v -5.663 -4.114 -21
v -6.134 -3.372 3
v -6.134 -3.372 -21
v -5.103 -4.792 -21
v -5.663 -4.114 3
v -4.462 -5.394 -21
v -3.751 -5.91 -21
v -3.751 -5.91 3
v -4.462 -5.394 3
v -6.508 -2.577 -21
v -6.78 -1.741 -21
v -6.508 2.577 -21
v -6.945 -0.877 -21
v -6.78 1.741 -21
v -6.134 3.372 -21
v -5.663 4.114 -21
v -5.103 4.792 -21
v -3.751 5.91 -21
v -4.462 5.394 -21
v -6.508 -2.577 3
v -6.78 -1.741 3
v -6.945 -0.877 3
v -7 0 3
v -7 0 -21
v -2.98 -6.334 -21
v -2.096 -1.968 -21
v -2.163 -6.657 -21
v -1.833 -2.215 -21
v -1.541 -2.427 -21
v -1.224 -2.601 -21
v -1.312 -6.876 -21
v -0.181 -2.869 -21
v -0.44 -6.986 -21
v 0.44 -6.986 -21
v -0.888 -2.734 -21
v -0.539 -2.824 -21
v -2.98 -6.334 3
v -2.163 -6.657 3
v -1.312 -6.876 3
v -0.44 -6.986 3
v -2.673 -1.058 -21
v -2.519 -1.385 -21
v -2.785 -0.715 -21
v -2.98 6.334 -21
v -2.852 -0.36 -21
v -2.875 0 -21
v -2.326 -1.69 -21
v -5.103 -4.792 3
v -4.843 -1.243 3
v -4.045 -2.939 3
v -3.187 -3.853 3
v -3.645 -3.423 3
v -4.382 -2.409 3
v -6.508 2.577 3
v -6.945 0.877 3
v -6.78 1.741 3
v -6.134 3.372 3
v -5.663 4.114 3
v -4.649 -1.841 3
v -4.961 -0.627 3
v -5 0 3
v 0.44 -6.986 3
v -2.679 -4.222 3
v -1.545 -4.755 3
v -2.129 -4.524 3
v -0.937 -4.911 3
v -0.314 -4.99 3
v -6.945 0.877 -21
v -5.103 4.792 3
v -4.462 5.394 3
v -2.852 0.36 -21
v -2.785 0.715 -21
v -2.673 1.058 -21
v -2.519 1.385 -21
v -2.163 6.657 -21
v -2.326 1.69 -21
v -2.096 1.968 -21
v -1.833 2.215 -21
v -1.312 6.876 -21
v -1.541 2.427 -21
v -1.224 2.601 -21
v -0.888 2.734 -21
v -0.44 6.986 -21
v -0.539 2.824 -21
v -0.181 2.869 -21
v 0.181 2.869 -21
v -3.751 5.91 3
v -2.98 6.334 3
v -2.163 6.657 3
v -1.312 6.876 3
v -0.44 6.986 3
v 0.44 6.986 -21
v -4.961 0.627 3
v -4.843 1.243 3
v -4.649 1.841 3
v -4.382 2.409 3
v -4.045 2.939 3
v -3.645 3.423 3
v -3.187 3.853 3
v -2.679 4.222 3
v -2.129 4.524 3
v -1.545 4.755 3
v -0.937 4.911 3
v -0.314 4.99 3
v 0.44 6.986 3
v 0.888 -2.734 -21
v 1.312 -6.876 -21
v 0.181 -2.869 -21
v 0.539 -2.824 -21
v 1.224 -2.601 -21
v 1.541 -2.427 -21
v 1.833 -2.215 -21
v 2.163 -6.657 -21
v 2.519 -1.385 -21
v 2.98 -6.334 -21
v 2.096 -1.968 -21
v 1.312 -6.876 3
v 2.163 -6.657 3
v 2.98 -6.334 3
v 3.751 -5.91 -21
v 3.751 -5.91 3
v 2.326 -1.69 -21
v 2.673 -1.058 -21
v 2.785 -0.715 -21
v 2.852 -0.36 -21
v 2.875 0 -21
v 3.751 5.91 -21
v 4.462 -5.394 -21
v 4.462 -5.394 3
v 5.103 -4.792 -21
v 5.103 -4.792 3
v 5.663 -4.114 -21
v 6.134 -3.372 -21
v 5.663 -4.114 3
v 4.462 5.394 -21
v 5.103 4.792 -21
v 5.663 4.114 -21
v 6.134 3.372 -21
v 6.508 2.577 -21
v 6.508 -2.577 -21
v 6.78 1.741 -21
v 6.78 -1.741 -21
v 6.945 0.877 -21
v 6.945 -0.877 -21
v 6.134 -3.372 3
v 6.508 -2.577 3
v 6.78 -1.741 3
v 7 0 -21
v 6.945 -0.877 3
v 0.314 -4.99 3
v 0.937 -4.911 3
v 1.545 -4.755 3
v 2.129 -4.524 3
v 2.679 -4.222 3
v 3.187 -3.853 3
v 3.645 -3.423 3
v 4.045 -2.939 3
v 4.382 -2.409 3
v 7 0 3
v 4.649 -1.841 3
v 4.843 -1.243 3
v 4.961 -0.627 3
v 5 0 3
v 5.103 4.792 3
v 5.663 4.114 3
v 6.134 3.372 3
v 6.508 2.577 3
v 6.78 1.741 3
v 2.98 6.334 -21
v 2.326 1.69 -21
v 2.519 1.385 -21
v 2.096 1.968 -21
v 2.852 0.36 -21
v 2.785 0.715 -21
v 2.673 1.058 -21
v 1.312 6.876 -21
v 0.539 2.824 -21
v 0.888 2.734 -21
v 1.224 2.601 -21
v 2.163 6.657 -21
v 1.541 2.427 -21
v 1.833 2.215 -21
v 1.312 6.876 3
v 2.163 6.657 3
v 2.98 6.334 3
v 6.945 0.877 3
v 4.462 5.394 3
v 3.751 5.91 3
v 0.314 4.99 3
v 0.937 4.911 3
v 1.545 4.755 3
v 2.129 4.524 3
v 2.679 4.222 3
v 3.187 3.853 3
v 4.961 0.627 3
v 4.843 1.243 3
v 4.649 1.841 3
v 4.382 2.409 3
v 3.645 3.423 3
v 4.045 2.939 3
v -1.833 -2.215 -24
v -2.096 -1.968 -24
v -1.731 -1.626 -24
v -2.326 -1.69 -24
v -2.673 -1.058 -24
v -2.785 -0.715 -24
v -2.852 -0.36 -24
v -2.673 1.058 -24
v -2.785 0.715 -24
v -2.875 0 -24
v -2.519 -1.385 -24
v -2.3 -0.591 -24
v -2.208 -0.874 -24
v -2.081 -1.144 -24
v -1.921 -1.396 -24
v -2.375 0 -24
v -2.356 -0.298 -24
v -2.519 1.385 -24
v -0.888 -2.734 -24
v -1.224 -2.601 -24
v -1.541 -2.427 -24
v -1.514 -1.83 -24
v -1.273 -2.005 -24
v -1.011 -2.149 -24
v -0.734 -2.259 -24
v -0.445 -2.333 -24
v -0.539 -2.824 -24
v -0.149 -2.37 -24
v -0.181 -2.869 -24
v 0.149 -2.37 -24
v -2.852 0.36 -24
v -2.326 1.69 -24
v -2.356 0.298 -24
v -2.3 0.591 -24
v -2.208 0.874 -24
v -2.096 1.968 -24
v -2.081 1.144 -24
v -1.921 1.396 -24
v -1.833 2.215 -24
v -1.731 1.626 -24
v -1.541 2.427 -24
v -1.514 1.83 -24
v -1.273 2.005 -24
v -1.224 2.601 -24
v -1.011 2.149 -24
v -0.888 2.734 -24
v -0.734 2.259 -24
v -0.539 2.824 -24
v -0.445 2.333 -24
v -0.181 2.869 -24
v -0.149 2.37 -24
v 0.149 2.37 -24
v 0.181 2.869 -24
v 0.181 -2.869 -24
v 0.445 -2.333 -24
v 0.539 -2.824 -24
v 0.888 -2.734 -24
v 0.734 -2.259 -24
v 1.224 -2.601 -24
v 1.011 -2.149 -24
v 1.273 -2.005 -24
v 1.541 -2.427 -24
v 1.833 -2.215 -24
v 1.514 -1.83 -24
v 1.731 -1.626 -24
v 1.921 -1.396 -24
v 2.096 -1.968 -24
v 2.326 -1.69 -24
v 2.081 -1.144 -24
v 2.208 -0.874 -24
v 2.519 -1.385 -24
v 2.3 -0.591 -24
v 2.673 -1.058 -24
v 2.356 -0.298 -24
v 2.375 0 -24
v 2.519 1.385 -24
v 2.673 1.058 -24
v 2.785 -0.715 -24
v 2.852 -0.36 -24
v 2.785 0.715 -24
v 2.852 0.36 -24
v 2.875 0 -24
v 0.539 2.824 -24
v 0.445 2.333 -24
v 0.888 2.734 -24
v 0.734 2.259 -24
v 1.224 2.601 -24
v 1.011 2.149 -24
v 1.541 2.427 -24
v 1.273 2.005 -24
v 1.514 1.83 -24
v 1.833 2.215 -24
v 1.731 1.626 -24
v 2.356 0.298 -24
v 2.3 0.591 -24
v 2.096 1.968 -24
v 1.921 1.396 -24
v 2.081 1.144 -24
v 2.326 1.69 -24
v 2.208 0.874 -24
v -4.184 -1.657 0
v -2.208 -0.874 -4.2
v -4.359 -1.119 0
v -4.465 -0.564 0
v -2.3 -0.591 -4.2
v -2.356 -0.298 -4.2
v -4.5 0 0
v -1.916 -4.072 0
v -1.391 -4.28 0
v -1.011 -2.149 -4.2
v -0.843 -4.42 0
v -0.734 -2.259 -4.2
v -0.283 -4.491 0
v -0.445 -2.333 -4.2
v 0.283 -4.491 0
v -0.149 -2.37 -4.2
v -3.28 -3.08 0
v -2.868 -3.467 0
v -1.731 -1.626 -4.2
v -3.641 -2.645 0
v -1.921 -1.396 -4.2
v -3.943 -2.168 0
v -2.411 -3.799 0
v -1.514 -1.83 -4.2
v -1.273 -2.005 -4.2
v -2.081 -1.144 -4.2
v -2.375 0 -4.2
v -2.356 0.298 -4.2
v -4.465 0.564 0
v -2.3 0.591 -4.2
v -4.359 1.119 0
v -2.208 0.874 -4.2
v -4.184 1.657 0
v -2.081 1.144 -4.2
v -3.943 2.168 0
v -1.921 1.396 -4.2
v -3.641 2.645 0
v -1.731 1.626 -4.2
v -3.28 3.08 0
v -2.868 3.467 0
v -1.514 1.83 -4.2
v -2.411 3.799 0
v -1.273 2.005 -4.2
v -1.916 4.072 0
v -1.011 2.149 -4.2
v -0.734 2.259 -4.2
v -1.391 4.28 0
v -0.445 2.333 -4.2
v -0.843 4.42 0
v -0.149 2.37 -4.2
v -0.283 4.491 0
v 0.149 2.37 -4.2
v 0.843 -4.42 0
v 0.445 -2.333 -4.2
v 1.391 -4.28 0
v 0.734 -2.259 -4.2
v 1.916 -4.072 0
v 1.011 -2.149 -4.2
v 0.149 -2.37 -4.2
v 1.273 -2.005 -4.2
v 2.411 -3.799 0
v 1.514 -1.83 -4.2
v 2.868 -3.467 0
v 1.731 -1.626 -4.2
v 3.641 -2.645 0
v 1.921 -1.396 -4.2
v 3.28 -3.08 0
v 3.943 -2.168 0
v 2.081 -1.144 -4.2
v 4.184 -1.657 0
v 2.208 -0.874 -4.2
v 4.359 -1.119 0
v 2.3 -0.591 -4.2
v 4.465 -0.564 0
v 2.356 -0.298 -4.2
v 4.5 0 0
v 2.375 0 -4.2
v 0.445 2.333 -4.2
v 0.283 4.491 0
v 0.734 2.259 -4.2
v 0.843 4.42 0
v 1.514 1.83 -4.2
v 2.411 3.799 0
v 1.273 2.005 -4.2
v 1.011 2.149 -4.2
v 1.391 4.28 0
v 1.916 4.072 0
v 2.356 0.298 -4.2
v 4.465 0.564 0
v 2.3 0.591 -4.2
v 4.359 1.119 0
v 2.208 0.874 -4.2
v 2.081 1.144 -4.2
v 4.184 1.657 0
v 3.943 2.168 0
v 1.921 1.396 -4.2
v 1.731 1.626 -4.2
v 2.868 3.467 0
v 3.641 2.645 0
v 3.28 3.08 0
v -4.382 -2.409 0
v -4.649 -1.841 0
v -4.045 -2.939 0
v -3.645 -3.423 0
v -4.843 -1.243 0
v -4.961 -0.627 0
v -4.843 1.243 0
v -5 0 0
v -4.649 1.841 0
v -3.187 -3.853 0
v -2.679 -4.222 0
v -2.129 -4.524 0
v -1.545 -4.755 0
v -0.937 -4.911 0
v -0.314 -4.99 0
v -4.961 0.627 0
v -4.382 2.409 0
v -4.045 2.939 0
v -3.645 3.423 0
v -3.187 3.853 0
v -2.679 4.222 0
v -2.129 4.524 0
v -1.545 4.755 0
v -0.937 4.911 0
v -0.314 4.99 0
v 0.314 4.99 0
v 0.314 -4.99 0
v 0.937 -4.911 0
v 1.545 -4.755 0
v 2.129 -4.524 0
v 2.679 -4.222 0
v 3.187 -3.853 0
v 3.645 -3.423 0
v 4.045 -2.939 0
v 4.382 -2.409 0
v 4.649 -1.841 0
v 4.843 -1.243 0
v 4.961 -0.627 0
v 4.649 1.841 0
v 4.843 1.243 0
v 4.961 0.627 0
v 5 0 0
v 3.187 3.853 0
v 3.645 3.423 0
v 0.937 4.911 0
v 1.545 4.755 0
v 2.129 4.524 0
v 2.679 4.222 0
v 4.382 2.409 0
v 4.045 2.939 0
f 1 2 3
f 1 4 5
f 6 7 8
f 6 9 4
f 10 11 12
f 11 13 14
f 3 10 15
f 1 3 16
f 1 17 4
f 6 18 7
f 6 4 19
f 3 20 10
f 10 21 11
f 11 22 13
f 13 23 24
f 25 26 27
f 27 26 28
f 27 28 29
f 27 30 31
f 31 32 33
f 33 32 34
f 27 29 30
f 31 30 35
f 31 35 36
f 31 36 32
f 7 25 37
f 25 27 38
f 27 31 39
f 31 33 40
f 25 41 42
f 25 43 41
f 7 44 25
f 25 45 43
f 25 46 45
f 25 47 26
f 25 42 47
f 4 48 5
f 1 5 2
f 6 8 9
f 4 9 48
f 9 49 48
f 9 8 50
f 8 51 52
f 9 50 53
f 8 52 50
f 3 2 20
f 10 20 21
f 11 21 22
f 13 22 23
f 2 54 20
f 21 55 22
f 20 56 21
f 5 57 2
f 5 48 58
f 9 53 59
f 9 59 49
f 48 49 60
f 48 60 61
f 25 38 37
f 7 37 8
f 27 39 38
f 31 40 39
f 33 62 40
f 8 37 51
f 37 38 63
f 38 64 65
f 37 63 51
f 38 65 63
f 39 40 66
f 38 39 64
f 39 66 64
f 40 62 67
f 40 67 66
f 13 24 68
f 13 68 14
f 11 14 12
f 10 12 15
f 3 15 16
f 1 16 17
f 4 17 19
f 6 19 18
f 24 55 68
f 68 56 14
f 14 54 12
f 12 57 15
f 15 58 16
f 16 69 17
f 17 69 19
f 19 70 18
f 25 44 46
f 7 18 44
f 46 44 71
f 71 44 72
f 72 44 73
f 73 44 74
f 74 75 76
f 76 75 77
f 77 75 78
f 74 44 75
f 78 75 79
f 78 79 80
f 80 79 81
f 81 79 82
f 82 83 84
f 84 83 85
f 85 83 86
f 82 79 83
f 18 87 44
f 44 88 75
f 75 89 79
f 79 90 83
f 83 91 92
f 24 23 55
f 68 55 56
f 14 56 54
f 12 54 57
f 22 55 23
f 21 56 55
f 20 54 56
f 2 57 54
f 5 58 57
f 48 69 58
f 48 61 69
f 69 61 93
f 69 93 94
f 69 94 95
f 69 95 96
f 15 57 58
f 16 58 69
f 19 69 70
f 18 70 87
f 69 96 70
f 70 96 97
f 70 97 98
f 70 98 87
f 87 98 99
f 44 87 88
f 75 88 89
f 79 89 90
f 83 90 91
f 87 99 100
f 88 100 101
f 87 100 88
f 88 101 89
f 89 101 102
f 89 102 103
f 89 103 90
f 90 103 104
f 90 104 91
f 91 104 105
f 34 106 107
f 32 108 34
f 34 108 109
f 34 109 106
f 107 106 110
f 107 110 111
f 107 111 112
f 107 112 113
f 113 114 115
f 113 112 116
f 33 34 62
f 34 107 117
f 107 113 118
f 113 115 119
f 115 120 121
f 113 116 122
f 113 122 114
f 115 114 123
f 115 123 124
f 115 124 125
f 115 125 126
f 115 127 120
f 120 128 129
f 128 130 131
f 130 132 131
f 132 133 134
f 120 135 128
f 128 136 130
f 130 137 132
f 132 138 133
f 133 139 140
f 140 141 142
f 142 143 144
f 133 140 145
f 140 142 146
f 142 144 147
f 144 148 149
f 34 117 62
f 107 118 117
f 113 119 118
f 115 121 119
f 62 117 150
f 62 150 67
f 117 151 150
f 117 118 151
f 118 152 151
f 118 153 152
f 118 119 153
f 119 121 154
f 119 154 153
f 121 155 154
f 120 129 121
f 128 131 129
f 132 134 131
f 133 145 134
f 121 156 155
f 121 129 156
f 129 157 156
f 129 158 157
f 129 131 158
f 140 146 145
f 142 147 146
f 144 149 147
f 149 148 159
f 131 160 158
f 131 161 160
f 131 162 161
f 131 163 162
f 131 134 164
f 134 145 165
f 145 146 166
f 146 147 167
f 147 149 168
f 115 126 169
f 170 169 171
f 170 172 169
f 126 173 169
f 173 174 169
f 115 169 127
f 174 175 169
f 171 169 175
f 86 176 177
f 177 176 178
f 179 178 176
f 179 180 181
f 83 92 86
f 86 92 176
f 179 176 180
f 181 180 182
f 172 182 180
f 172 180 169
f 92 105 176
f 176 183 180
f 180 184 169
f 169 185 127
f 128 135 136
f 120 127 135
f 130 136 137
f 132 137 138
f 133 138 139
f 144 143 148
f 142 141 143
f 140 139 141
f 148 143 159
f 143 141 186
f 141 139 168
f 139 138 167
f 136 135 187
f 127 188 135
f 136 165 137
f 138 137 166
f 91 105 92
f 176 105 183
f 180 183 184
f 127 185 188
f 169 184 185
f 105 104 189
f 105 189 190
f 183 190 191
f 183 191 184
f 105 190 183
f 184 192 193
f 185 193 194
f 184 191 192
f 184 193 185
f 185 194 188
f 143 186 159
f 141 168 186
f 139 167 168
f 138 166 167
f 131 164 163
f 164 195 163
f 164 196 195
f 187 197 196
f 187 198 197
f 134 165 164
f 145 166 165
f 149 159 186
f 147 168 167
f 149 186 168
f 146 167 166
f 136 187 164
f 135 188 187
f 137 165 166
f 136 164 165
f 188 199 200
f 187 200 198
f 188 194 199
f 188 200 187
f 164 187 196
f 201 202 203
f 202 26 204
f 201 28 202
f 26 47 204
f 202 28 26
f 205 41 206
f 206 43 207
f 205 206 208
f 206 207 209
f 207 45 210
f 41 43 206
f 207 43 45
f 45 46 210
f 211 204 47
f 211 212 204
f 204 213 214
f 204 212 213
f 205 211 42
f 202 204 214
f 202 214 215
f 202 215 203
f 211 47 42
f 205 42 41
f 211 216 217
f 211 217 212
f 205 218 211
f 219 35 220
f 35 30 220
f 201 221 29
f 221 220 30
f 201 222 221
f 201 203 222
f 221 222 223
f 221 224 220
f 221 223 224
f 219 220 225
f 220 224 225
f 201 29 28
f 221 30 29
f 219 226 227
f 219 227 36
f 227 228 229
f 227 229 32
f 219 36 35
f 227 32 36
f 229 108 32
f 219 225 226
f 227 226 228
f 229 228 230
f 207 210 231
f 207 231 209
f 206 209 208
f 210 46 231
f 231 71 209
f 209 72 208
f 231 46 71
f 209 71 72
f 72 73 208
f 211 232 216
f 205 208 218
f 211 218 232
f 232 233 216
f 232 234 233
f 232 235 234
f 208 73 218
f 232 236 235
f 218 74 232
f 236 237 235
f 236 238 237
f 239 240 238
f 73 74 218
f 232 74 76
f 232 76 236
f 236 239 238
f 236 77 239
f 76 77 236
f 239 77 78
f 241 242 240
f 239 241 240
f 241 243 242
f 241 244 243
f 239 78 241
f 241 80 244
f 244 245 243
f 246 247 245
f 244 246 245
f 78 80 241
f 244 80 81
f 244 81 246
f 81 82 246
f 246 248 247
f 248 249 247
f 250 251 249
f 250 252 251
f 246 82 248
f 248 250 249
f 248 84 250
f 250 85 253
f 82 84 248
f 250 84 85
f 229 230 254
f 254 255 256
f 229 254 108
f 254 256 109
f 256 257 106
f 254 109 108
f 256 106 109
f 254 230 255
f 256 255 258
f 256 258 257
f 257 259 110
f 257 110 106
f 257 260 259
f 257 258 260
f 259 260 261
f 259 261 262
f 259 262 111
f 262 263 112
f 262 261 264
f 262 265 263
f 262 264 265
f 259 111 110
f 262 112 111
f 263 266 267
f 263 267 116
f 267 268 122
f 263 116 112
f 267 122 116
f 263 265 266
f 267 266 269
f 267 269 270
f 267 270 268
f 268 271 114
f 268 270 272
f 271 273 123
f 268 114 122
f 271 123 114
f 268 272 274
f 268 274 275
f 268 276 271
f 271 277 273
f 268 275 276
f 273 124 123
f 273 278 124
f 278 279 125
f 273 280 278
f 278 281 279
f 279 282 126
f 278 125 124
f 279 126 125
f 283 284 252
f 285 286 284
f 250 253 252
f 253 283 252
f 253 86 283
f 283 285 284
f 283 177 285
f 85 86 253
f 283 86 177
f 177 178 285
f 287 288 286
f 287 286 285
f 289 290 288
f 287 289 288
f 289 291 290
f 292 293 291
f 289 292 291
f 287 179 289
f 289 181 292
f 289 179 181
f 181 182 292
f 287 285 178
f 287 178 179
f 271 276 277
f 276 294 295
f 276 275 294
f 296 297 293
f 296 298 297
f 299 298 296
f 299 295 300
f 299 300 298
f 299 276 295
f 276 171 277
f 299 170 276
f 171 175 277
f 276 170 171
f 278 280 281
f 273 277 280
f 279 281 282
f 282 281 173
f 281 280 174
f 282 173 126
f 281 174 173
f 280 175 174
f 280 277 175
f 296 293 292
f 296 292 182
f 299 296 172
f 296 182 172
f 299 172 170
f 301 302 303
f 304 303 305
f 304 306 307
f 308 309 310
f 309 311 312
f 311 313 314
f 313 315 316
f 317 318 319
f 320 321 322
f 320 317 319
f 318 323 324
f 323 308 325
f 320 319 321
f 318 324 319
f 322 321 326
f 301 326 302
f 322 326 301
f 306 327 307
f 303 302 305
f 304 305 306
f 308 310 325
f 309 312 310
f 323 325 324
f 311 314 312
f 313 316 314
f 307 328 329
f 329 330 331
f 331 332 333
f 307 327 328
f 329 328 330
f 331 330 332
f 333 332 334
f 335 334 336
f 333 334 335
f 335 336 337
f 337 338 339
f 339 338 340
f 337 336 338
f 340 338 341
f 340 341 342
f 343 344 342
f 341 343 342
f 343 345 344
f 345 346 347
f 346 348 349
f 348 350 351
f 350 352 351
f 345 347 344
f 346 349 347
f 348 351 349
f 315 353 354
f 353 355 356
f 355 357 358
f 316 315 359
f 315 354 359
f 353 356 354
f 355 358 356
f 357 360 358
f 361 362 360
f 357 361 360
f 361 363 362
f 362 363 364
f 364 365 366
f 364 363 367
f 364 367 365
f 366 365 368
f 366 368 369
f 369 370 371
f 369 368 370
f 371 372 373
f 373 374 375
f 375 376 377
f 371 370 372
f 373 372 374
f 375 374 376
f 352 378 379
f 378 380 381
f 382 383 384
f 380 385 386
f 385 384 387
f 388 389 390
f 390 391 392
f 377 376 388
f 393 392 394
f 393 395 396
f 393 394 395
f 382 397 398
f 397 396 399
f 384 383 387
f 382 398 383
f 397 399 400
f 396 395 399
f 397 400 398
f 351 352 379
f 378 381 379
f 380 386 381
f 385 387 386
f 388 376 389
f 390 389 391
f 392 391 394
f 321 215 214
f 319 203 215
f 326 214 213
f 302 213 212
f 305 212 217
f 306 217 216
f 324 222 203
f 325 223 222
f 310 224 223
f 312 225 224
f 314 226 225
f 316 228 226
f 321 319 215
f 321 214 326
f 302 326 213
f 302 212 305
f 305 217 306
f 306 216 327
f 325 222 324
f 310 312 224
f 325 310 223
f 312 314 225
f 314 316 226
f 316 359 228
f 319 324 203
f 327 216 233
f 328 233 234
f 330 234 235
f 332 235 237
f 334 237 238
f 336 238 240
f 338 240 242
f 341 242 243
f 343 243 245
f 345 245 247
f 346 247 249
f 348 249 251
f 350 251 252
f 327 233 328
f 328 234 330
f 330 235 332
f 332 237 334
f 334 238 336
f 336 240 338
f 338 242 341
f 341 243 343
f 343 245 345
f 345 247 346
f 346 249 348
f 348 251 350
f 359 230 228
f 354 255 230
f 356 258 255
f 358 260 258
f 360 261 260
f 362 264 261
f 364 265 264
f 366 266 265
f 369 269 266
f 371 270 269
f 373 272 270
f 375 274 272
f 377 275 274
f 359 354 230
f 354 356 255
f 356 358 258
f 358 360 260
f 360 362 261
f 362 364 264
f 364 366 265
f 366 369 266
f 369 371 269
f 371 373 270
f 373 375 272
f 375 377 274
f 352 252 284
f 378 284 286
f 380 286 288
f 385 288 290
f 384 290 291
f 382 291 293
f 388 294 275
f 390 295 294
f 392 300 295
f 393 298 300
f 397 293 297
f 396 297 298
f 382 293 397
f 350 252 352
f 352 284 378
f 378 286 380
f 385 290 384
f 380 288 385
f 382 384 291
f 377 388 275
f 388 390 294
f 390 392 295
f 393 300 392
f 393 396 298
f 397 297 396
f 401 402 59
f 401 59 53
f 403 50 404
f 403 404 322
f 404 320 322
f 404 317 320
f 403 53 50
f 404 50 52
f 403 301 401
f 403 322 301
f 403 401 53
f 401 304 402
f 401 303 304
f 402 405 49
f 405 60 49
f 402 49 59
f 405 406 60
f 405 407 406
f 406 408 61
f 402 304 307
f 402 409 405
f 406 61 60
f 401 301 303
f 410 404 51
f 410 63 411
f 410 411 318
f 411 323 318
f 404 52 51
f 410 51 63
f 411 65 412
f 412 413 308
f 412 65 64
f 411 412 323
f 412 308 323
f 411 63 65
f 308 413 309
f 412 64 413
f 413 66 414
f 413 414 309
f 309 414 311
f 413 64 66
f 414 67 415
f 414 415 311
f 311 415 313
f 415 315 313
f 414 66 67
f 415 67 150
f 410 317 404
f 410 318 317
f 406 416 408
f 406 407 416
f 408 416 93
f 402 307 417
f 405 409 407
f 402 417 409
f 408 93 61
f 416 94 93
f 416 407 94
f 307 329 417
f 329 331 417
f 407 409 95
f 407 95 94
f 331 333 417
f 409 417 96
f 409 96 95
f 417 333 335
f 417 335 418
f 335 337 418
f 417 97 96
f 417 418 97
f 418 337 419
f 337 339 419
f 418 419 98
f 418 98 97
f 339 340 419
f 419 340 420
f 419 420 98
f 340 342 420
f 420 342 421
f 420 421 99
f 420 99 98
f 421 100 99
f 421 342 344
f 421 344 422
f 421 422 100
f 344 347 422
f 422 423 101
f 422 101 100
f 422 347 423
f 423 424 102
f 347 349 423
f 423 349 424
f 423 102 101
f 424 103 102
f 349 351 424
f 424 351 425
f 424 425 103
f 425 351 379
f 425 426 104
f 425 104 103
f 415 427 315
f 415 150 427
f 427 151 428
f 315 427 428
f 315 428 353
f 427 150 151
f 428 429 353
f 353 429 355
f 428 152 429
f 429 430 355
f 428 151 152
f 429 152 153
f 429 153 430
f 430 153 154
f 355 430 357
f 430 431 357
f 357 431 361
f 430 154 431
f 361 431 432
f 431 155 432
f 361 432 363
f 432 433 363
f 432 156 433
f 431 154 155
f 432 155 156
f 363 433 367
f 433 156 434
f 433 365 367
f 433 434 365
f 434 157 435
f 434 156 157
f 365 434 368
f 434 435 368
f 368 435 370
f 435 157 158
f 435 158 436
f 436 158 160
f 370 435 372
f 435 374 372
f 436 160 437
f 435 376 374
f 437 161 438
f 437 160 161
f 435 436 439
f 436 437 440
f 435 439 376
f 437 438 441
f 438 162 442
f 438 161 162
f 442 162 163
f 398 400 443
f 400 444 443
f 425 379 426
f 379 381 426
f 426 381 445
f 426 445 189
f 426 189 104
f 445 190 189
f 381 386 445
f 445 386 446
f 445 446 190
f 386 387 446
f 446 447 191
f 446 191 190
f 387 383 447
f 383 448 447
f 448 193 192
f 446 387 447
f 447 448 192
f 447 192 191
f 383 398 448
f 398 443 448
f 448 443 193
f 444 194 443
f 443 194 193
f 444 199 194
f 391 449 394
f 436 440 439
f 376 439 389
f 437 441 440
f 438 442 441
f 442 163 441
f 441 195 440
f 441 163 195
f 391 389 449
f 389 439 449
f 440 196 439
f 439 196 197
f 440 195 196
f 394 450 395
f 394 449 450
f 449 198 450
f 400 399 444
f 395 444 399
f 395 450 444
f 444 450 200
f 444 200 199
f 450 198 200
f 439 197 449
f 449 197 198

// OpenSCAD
$fn = 50;


difference() {
	union() {
		translate(v = [0, 0, -21.0000000000]) {
			cylinder(h = 24, r = 7.0000000000);
		}
		#translate(v = [0, 0, -24.0000000000]) {
			cylinder(h = 24, r = 2.8750000000);
		}
	}
	union() {
		translate(v = [0, 0, 0]) {
			rotate(a = [0, 0, 0]) {
				difference() {
					union() {
						translate(v = [0, 0, -24.0000000000]) {
							cylinder(h = 24, r = 2.2500000000);
						}
						translate(v = [0, 0, -4.2000000000]) {
							cylinder(h = 4.2000000000, r1 = 2.3750000000, r2 = 4.5000000000);
						}
						translate(v = [0, 0, -24.0000000000]) {
							cylinder(h = 24, r = 2.3750000000);
						}
						translate(v = [0, 0, -24.0000000000]) {
							cylinder(h = 24, r = 2.2500000000);
						}
					}
					union();
				}
			}
		}
		#cylinder(h = 3, r = 5.0000000000);
	}
}
